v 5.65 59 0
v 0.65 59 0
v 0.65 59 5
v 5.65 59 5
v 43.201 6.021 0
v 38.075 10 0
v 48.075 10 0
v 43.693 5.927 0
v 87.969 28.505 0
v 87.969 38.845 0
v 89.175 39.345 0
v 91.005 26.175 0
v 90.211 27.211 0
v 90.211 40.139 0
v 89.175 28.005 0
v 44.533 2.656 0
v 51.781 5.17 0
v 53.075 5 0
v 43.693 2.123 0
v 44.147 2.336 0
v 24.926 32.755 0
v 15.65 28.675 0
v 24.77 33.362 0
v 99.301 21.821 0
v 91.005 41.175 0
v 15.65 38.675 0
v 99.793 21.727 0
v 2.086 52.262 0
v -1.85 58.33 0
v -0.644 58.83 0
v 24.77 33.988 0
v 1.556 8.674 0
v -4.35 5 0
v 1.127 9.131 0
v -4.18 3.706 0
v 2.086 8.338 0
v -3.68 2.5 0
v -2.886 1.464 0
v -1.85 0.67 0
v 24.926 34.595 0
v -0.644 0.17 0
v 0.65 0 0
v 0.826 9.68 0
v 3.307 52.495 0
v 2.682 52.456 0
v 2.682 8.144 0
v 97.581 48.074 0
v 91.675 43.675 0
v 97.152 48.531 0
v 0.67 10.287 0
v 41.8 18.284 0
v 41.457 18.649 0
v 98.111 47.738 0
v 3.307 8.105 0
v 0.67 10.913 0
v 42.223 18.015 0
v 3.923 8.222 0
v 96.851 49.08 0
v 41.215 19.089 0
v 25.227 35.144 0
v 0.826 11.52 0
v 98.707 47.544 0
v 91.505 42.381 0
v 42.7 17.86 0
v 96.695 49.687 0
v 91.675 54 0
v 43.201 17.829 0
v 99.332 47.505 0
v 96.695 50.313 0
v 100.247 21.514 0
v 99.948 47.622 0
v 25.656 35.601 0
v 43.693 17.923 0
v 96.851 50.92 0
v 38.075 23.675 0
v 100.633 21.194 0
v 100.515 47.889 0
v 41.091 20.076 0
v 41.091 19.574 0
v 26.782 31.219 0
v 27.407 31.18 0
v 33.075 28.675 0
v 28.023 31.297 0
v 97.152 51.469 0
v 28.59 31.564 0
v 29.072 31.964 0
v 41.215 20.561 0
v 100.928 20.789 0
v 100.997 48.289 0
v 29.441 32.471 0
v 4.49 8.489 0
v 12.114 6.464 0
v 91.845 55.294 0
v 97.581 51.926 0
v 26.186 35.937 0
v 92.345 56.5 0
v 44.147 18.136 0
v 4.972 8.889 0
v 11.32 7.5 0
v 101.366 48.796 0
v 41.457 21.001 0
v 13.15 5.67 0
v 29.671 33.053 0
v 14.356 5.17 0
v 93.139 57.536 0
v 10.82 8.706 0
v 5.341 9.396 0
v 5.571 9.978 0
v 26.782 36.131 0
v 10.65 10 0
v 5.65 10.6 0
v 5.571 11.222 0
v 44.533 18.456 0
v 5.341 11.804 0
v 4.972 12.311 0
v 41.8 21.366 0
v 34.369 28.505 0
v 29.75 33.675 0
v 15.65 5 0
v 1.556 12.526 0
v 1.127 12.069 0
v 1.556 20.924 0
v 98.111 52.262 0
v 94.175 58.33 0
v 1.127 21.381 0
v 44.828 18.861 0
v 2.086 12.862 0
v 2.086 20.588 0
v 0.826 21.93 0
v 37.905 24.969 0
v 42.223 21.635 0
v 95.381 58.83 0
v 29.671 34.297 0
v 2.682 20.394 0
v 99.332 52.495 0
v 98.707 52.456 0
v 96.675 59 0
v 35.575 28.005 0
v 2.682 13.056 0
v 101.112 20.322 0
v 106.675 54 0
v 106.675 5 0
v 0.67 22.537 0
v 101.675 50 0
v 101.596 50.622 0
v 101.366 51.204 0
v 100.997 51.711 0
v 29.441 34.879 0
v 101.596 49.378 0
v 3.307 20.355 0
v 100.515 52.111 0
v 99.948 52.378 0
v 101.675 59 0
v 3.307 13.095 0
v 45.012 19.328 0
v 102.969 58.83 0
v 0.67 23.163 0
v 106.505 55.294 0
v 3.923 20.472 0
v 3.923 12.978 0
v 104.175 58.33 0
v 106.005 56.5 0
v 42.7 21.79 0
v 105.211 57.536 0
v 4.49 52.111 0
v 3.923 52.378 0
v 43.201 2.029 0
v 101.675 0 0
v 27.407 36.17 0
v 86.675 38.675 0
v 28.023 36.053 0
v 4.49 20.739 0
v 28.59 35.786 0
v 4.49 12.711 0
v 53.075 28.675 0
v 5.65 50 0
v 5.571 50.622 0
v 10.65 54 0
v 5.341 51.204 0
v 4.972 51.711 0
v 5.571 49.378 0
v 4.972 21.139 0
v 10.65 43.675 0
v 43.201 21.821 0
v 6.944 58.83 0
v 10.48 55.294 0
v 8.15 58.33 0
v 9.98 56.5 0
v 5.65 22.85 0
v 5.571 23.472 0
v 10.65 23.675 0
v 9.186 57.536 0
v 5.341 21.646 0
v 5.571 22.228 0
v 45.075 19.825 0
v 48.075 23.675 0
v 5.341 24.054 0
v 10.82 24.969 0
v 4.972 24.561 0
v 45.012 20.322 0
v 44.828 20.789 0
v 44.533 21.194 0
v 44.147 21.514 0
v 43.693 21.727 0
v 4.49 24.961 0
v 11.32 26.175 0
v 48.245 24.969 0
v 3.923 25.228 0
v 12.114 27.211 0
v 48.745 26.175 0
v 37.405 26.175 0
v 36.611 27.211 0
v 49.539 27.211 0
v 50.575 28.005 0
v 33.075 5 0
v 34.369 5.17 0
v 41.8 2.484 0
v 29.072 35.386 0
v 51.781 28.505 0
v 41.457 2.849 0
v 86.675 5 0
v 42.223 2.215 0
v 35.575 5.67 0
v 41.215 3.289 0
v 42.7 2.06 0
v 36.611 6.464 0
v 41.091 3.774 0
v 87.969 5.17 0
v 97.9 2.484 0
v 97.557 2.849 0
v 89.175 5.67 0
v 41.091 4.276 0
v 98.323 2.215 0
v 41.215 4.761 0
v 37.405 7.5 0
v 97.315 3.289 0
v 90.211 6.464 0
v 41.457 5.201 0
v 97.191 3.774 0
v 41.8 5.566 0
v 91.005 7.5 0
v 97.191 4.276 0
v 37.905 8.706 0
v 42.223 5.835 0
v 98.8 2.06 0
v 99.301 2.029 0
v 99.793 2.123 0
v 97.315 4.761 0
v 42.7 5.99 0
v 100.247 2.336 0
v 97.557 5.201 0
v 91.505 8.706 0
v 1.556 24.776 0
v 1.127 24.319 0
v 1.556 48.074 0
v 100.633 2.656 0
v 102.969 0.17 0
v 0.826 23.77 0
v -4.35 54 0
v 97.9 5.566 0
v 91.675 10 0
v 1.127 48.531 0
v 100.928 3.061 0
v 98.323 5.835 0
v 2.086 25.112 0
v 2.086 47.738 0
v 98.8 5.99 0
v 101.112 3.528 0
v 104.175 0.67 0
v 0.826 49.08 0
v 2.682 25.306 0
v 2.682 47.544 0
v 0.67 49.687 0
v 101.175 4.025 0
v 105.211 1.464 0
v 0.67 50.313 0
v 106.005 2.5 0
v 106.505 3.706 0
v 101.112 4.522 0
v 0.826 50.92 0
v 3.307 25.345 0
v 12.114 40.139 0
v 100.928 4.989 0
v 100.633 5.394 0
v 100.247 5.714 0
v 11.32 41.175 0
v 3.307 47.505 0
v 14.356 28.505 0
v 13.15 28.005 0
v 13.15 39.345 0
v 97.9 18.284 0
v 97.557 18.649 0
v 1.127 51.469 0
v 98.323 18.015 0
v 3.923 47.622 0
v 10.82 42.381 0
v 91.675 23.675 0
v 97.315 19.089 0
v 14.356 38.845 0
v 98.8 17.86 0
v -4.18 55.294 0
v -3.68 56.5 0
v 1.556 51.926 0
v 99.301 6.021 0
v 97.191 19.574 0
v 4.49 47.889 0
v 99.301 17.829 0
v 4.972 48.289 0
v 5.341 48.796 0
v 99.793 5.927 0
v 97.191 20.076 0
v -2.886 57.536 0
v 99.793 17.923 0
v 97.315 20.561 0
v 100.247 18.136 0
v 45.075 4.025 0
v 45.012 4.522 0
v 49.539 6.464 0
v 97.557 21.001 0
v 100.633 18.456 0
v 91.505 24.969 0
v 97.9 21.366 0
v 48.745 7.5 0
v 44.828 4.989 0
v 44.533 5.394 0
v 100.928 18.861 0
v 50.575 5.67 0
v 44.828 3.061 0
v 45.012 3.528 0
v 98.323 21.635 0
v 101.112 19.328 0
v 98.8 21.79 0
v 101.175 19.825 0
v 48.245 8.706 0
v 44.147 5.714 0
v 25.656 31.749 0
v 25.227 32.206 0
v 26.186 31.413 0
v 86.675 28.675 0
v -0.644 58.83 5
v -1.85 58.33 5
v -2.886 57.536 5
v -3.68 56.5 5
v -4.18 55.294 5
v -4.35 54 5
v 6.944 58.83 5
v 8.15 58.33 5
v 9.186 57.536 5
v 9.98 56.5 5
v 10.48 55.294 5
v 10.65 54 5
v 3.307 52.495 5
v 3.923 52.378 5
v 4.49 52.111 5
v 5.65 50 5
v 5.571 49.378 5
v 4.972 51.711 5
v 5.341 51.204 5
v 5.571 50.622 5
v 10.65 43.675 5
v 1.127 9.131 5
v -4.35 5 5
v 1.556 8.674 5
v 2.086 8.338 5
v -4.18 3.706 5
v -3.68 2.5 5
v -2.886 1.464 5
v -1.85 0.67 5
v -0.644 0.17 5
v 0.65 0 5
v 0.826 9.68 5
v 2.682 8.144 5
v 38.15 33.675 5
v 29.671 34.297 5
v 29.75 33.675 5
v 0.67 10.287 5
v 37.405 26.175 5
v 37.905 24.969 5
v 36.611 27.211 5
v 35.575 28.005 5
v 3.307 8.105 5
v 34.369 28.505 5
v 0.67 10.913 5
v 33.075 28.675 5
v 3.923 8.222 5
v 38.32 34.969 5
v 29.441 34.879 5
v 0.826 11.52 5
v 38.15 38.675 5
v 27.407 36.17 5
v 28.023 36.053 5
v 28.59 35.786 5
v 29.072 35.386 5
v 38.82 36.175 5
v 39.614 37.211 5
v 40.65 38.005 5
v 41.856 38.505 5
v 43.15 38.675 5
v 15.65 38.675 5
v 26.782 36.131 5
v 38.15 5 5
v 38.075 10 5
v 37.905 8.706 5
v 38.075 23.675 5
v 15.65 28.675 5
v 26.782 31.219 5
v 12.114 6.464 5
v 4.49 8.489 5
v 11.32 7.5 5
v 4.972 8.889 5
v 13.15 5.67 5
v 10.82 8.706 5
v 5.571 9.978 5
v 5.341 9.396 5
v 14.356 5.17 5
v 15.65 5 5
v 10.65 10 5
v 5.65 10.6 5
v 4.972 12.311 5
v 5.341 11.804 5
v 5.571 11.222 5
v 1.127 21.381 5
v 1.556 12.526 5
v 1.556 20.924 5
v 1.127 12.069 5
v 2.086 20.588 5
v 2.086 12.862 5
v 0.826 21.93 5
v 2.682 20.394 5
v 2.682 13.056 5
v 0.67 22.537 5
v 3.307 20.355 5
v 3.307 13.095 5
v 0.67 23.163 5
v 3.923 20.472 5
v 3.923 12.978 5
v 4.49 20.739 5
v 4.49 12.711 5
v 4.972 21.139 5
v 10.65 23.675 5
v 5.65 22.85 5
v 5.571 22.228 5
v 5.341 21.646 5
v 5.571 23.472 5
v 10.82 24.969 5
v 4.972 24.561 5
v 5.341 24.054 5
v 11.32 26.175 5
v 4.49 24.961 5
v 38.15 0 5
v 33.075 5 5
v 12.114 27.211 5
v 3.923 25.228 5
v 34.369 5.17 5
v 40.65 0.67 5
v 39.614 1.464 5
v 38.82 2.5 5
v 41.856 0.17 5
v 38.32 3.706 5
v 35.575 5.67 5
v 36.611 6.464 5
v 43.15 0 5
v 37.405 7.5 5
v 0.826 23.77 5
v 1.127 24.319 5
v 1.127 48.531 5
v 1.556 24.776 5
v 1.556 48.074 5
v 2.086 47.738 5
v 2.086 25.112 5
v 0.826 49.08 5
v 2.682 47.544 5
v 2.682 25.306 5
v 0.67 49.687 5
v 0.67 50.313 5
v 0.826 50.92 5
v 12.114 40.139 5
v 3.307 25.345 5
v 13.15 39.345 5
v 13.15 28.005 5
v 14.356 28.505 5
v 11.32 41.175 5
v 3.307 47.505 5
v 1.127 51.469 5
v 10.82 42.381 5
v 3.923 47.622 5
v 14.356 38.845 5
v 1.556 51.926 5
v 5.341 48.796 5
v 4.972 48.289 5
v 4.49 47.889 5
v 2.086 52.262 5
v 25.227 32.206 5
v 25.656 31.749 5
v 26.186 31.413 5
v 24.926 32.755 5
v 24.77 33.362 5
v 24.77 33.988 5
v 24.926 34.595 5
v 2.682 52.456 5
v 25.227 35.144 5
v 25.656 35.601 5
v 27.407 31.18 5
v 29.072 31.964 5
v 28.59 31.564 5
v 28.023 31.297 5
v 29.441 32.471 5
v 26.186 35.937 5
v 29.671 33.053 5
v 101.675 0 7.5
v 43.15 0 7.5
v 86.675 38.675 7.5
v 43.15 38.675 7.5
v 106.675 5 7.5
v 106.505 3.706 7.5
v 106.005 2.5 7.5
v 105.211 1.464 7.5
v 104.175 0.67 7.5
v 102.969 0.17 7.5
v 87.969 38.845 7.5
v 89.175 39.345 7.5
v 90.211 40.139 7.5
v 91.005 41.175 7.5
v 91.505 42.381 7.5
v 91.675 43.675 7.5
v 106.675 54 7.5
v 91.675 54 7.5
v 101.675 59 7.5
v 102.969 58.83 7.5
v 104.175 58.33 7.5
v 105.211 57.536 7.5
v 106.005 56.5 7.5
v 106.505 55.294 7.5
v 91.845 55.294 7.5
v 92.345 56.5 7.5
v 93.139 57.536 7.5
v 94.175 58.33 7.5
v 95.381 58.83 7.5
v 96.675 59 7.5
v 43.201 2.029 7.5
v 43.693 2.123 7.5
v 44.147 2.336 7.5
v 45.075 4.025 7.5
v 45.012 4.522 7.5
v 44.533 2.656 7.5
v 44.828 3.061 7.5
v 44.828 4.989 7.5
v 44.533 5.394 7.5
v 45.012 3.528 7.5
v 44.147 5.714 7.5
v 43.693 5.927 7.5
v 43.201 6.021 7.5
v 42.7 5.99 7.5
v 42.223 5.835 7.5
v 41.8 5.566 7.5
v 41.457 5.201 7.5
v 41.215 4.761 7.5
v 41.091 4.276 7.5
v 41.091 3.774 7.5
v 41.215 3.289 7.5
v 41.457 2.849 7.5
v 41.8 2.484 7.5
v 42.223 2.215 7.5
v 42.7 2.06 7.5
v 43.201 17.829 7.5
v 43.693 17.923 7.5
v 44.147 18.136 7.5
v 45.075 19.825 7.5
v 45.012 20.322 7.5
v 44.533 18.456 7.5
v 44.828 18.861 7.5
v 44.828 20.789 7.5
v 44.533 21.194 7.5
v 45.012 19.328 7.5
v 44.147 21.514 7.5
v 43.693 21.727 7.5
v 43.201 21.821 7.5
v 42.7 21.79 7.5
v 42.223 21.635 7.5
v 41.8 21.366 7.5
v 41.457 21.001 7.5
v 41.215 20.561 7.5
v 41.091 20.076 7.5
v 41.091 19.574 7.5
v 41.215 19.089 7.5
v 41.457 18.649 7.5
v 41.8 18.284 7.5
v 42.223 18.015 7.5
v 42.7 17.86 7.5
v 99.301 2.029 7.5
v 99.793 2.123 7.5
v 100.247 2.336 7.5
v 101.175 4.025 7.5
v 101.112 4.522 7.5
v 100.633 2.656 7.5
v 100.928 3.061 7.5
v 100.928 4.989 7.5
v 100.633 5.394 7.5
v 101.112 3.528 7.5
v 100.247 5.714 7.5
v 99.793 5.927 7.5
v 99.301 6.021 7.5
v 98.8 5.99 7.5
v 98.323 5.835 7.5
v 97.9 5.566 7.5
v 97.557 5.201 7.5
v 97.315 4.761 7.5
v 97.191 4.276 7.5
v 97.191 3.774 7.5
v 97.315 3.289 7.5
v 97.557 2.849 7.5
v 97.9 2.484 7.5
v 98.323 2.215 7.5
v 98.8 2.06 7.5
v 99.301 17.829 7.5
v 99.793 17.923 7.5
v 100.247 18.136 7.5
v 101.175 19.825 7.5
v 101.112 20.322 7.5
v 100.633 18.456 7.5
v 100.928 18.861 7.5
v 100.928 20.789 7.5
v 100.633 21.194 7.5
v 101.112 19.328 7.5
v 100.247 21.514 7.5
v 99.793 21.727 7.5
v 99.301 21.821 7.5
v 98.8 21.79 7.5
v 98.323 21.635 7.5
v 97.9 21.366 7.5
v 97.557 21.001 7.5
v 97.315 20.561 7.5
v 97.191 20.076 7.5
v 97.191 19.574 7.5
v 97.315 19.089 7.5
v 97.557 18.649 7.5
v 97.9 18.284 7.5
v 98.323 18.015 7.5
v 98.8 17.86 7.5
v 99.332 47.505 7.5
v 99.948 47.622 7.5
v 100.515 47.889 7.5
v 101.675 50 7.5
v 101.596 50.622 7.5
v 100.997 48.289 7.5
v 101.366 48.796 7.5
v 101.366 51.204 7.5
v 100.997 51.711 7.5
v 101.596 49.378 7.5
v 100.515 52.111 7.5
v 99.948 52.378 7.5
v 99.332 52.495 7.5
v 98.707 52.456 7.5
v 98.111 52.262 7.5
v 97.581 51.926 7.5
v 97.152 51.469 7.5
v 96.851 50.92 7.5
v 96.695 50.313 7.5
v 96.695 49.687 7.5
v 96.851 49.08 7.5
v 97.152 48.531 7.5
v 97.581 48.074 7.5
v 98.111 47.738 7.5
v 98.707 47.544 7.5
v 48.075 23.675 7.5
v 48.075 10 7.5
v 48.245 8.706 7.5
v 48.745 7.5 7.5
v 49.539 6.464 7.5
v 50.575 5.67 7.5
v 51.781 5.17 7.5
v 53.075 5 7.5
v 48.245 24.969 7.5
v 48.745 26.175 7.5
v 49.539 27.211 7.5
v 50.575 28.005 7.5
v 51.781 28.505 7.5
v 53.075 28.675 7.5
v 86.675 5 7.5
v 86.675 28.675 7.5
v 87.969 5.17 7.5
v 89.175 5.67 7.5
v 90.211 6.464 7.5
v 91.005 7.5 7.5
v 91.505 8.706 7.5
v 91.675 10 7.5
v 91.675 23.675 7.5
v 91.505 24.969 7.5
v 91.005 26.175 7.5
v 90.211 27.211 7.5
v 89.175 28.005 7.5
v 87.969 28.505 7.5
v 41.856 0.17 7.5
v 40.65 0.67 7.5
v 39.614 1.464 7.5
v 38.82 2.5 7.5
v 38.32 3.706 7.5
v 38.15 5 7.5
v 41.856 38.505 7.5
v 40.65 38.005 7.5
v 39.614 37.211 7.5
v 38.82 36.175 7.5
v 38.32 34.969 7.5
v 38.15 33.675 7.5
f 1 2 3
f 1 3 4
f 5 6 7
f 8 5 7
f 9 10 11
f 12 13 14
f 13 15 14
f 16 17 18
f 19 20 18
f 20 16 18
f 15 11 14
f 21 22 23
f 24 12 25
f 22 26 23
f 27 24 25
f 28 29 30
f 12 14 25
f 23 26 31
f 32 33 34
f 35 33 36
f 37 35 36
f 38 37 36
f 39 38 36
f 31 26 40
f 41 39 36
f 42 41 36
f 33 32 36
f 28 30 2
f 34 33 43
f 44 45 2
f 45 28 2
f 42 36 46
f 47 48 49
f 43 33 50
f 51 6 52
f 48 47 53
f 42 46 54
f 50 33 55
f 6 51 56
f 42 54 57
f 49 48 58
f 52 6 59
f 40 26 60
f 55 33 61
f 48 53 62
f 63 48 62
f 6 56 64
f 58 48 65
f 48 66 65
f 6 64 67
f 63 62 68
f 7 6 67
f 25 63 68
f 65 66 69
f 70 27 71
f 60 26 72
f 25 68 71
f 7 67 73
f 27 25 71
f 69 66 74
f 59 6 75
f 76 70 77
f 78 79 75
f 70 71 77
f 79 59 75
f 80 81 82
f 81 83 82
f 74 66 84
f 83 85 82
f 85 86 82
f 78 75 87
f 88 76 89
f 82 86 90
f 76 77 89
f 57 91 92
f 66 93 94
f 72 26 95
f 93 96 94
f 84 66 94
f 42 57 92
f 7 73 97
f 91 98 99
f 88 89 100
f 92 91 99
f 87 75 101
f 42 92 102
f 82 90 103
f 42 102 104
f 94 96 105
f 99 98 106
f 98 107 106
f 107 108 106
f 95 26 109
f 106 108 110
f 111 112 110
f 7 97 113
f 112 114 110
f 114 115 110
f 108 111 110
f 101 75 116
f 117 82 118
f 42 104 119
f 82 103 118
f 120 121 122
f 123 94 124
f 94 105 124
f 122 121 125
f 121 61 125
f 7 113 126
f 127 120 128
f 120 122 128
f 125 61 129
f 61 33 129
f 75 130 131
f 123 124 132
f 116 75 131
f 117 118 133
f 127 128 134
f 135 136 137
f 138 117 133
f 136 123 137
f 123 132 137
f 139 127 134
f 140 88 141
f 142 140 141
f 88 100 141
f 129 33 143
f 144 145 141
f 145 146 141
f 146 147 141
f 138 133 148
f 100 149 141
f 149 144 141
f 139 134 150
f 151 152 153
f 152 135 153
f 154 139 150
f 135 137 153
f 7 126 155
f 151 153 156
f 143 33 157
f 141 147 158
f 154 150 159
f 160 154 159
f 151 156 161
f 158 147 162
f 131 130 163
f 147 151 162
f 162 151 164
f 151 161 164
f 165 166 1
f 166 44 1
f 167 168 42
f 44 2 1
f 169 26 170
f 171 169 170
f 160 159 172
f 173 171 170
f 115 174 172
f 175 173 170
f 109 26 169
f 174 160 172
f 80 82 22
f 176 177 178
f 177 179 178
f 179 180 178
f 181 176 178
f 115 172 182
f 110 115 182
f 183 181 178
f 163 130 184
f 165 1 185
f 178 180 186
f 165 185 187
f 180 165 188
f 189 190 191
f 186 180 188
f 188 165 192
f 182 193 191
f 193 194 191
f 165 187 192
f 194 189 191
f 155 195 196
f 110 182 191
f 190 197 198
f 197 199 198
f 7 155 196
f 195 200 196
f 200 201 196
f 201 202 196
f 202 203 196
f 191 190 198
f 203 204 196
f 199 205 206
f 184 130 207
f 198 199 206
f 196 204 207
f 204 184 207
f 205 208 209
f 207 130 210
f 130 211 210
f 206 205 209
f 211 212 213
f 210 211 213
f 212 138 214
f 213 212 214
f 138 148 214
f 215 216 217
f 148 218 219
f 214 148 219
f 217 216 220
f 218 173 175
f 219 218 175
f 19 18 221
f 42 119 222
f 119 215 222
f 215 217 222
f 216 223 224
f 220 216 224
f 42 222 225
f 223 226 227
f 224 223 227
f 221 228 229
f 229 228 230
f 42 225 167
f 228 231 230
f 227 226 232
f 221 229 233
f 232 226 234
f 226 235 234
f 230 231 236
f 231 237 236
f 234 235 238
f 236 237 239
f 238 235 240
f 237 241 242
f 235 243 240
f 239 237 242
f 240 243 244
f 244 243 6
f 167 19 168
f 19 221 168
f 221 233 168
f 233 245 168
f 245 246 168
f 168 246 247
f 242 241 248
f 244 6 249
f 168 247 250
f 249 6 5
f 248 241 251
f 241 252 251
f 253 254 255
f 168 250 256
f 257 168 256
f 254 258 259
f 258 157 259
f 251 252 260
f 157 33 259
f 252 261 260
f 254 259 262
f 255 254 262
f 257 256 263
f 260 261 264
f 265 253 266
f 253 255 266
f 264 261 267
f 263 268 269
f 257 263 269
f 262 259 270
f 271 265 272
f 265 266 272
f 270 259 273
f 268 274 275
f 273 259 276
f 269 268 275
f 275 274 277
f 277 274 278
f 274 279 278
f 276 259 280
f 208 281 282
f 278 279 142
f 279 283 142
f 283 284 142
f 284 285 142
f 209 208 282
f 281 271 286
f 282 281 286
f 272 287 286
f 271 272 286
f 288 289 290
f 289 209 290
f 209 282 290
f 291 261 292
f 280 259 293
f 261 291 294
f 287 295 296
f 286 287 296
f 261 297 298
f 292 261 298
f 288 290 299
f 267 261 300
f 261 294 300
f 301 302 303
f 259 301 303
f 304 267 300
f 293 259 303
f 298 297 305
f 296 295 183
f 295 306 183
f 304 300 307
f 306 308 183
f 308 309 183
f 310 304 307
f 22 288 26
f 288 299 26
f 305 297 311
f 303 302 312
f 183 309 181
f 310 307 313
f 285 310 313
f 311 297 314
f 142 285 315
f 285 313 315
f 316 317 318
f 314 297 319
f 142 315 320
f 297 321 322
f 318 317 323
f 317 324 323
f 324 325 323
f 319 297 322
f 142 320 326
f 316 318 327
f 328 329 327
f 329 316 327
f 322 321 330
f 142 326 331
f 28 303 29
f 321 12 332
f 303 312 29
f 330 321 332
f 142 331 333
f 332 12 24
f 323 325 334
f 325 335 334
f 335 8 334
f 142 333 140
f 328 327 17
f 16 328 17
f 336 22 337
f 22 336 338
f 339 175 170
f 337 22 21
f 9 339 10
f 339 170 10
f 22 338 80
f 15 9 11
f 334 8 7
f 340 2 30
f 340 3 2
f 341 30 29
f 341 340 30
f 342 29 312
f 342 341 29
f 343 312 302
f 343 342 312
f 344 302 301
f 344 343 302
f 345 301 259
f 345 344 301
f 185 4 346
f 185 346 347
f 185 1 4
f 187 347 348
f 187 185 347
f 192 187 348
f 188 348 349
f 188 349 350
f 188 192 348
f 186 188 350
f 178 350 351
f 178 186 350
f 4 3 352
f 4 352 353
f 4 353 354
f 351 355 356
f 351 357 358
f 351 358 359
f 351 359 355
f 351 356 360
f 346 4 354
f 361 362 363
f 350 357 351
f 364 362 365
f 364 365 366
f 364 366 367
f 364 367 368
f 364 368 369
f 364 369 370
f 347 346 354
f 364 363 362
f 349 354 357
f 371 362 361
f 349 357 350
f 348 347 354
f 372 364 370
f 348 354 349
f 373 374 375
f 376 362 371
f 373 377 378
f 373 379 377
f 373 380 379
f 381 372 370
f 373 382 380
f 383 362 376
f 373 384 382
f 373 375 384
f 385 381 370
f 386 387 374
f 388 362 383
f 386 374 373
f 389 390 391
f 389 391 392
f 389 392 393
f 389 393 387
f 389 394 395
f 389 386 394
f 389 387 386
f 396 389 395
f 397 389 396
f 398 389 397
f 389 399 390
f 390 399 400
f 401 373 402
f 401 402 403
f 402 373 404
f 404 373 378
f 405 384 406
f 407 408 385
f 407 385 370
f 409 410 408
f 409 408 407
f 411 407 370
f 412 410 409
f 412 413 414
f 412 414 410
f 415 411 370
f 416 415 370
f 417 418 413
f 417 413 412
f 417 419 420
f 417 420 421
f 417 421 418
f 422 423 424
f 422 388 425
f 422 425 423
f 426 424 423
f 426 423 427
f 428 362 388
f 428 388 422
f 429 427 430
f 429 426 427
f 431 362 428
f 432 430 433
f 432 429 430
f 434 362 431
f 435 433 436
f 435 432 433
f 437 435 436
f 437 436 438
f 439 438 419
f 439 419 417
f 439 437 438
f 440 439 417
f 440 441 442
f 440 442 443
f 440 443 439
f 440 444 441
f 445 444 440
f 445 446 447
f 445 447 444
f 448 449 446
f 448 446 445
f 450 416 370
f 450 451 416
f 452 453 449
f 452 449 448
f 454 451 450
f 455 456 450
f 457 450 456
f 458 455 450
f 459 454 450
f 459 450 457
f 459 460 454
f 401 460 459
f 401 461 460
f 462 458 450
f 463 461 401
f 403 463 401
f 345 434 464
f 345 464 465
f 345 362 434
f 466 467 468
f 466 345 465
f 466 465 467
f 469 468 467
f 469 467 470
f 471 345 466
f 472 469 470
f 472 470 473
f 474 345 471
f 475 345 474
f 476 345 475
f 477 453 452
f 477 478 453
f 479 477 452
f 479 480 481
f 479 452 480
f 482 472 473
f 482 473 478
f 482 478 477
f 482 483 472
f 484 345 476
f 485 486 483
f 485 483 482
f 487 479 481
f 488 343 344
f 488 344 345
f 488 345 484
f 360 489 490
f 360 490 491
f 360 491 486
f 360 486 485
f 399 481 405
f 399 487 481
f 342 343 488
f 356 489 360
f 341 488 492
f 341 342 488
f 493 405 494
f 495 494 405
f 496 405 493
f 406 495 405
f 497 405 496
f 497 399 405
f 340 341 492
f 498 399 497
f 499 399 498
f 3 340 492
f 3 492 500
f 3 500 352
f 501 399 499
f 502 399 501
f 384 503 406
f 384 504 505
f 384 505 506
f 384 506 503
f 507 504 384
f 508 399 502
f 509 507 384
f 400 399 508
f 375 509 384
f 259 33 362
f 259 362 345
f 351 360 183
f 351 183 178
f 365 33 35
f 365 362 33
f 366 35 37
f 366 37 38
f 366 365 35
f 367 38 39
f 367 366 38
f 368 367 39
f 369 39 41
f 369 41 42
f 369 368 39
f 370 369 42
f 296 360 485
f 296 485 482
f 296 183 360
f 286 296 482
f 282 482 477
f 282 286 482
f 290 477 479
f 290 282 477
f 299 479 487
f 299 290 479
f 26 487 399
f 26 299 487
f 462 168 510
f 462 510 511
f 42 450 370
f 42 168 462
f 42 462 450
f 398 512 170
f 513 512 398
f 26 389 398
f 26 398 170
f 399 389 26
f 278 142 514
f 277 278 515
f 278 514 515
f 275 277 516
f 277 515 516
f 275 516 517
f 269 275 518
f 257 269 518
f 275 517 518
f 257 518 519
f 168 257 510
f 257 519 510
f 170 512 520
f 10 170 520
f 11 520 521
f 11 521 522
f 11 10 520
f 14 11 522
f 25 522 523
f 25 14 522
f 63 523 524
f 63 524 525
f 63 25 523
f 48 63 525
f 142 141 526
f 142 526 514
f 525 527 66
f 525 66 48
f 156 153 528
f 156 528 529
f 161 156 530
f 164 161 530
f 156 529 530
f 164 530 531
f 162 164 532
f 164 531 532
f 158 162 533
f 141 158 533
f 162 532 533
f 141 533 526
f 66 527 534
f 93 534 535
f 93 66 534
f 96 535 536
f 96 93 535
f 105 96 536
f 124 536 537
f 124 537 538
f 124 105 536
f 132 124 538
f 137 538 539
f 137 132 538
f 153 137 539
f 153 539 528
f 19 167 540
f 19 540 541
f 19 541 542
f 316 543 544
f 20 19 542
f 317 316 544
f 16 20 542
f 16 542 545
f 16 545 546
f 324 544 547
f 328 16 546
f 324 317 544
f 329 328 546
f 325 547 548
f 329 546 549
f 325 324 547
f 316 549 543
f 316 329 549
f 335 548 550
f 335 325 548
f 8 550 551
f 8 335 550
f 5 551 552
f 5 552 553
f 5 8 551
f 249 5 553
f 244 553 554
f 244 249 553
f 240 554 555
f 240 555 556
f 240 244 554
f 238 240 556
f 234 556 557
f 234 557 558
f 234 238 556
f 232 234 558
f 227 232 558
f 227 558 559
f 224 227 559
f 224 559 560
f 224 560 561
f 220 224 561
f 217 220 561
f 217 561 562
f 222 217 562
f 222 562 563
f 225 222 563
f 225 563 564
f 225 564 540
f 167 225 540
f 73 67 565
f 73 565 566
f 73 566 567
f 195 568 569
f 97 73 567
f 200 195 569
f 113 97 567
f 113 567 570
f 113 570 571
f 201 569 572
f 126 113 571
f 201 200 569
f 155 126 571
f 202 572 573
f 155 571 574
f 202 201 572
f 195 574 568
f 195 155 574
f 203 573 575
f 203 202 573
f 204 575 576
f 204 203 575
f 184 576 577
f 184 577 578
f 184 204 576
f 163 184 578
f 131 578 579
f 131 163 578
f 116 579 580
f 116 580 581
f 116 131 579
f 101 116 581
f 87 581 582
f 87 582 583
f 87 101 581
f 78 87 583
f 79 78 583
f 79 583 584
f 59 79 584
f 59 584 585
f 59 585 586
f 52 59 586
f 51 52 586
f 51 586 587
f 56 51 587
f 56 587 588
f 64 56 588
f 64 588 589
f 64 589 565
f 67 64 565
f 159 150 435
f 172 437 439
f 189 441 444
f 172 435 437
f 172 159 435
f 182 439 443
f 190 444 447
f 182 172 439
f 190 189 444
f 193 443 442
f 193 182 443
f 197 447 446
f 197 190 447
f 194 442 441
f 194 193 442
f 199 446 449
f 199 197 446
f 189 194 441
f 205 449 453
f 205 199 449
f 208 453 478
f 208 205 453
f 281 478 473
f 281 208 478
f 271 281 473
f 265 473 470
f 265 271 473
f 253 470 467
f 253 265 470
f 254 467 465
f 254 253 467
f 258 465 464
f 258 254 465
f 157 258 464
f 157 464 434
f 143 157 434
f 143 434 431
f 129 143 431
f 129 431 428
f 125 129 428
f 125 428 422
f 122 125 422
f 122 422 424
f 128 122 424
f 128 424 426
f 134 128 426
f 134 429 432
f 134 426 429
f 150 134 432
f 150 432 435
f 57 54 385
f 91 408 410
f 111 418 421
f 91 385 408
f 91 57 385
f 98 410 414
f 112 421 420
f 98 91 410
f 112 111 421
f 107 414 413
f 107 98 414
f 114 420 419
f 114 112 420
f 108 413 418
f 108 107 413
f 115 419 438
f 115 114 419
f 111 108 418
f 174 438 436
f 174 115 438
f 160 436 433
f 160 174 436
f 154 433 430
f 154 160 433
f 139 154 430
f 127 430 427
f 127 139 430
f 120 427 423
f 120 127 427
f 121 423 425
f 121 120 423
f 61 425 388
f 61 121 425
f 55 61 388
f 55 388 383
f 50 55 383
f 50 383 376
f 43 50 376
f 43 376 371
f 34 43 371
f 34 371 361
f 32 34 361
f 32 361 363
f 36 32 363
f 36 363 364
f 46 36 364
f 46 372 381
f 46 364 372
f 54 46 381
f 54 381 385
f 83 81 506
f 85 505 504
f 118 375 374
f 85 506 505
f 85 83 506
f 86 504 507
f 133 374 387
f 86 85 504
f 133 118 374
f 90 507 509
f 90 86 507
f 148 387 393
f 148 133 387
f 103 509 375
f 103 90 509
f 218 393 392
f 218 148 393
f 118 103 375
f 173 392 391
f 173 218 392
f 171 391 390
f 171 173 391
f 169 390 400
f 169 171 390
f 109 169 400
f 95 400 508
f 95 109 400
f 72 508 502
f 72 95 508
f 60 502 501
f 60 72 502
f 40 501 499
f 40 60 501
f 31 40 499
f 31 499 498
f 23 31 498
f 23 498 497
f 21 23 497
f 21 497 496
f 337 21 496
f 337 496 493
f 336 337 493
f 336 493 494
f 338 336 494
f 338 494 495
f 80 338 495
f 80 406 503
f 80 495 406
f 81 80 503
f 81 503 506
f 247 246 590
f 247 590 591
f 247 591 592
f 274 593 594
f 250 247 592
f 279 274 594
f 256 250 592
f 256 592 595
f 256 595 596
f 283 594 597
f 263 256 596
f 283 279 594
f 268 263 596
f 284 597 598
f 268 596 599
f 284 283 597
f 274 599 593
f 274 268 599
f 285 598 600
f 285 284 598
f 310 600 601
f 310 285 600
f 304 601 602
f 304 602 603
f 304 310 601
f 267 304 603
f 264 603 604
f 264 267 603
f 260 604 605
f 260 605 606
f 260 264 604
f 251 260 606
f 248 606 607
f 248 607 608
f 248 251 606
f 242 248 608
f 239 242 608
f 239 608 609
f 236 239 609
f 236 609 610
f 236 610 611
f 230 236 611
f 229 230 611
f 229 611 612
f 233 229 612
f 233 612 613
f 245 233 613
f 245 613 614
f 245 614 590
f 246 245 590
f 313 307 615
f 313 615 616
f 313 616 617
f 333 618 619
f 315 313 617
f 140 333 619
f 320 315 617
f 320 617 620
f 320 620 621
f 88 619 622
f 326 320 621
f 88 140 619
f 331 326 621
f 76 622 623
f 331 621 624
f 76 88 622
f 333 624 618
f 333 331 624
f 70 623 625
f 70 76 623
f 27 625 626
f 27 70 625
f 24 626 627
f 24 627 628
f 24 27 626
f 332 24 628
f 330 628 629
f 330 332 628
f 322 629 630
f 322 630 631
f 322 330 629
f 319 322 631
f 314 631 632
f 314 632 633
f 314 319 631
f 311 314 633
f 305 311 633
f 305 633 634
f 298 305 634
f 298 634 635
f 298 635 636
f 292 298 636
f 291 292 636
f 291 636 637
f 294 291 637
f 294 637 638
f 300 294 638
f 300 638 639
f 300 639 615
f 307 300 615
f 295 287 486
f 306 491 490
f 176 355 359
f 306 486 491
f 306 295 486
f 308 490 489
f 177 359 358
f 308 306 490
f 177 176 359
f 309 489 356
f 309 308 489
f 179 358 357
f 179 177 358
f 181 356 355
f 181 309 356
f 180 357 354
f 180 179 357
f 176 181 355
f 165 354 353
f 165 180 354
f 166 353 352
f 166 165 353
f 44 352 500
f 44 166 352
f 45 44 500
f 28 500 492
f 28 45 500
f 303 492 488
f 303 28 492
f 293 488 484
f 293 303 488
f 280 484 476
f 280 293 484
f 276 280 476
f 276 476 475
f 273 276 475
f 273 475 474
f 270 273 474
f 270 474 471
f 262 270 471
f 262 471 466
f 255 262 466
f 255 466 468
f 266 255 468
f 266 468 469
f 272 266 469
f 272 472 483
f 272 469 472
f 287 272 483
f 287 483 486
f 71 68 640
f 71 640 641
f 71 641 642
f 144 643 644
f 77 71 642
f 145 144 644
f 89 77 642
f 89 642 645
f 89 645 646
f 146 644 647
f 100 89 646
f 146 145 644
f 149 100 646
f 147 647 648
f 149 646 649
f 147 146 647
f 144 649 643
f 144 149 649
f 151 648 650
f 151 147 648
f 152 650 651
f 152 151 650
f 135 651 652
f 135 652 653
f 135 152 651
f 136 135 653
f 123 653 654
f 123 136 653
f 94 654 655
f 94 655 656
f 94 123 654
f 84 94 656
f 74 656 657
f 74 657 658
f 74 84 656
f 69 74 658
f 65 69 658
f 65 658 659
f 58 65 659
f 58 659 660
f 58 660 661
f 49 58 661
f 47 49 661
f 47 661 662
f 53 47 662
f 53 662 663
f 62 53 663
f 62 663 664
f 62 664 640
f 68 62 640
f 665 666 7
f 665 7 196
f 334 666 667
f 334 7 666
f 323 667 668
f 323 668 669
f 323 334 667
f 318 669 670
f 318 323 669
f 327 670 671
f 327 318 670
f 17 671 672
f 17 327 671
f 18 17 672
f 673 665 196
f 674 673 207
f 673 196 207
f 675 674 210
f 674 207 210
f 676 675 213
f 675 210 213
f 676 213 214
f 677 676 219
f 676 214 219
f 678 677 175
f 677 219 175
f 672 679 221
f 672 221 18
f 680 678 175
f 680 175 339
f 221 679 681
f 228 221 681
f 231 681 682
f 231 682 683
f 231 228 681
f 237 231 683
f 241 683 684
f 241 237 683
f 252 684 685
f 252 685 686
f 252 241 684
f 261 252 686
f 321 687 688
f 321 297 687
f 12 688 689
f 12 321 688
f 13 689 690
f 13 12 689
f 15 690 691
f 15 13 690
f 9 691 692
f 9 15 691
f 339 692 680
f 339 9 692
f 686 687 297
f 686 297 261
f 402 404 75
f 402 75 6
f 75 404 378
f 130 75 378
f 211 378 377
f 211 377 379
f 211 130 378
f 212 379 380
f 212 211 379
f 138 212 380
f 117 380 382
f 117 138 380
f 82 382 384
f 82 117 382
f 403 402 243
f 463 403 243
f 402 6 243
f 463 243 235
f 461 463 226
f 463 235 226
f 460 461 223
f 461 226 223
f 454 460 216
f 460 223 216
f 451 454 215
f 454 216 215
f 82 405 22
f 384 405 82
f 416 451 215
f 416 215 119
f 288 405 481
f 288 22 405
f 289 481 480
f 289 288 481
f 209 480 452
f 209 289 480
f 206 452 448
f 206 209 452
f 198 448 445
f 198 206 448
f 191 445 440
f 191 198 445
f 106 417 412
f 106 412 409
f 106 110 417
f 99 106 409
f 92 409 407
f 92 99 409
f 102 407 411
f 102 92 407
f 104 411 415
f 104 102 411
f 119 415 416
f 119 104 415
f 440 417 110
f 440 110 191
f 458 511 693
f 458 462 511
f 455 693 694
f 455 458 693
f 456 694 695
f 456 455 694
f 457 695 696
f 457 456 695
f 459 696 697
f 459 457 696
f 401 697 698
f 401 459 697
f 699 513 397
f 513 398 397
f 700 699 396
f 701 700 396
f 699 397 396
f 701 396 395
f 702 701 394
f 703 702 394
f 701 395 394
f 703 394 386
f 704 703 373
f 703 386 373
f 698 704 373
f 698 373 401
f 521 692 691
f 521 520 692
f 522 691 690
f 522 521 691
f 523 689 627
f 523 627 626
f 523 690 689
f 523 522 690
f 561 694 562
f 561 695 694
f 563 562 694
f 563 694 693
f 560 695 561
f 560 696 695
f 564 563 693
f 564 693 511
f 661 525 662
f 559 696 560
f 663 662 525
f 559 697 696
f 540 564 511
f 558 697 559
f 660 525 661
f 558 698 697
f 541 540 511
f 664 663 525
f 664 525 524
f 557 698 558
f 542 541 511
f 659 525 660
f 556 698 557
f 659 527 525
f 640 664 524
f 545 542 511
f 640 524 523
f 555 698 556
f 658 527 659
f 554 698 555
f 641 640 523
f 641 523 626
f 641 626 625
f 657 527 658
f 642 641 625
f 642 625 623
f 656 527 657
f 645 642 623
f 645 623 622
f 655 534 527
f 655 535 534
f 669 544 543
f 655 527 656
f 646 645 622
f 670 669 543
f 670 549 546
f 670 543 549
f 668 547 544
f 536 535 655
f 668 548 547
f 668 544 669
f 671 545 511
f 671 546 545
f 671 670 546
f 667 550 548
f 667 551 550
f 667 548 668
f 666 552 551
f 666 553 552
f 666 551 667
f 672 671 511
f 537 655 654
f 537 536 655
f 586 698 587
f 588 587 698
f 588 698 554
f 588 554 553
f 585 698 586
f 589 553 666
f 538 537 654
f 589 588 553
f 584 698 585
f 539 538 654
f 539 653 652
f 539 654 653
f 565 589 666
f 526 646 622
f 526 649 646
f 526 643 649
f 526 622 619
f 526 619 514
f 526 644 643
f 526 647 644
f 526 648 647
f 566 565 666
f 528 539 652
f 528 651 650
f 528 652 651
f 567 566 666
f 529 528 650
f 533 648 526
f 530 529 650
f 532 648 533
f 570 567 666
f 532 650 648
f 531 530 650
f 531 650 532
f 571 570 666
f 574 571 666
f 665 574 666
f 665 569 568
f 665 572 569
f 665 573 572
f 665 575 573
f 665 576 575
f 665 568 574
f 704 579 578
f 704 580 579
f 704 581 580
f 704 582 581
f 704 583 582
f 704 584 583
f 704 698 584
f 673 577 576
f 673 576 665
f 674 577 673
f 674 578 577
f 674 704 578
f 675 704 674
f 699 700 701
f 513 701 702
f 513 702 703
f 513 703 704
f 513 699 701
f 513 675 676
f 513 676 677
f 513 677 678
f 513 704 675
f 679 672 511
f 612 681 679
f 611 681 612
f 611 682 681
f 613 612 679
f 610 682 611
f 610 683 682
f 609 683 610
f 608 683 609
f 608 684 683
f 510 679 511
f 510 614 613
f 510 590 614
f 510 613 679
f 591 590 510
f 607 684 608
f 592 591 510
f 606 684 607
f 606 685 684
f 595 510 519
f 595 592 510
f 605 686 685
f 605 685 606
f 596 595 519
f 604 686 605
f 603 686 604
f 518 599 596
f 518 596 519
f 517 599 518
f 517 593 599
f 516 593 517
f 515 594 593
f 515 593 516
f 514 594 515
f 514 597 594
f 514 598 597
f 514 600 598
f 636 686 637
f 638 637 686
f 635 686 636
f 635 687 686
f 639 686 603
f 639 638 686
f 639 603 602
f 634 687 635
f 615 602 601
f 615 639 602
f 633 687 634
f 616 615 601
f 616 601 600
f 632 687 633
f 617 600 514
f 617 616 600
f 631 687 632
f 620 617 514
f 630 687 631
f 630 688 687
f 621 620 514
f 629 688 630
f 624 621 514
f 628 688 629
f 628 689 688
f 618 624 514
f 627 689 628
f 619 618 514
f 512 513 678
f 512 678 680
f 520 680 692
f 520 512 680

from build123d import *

# Parameters (mm, degrees)
SKETCH_W        = 111.025
SKETCH_H        = 59
SKETCH_R        = 2.5
SKETCH_R_2      = 2
PAD_DEPTH       = 7.5
SKETCH001_W     = 42.5
SKETCH001_H     = 59
POCKET_DEPTH    = 2.5
SKETCH002_W     = 81.025
SKETCH002_H     = 20.325
SKETCH002_W_2   = 43.6
SKETCH002_H_2   = 23.675
SKETCH002_W_3   = 27.425
POCKET001_DEPTH = 7.501
FILLET_R        = 5


with BuildPart() as part:
    # Sketch → Pad (new body)
    with BuildSketch(Plane.XY):
        with Locations((51.1625, 29.5)):
            Rectangle(SKETCH_W, SKETCH_H)
        with Locations((3.15, 22.85)):
            Circle(SKETCH_R, mode=Mode.SUBTRACT)
        with Locations((3.15, 10.6)):
            Circle(SKETCH_R, mode=Mode.SUBTRACT)
        with Locations((27.25, 33.675)):
            Circle(SKETCH_R, mode=Mode.SUBTRACT)
        with Locations((43.075, 19.825)):
            Circle(SKETCH_R_2, mode=Mode.SUBTRACT)
        with Locations((99.175, 19.825)):
            Circle(SKETCH_R_2, mode=Mode.SUBTRACT)
        with Locations((43.075, 4.025)):
            Circle(SKETCH_R_2, mode=Mode.SUBTRACT)
        with Locations((99.175, 4.025)):
            Circle(SKETCH_R_2, mode=Mode.SUBTRACT)
        with Locations((3.15, 50)):
            Circle(SKETCH_R, mode=Mode.SUBTRACT)
        with Locations((99.175, 50)):
            Circle(SKETCH_R, mode=Mode.SUBTRACT)
    extrude(amount=PAD_DEPTH)

    # Sketch001 → Pocket (cut)
    with BuildSketch(Plane.XY.offset(7.5)):
        with Locations((16.9, 29.5)):
            Rectangle(SKETCH001_W, SKETCH001_H)
    extrude(amount=-POCKET_DEPTH, mode=Mode.SUBTRACT)

    # Sketch002 → Pocket001 (cut, through all)
    with BuildSketch(Plane.XY.offset(7.5)):
        with Locations((51.1625, 48.8375)):
            Rectangle(SKETCH002_W, SKETCH002_H)
        with Locations((69.875, 16.8375)):
            Rectangle(SKETCH002_W_2, SKETCH002_H_2)
        with Locations((24.3625, 16.8375)):
            Rectangle(SKETCH002_W_3, SKETCH002_H_2)
    extrude(amount=-POCKET001_DEPTH, mode=Mode.SUBTRACT)

    # Fillet
    fillet_edges = [part.edges().sort_by_distance(p)[0] for p in [
        (106.675, 59, 3.75),
        (91.675, 59, 3.75),
        (91.675, 38.675, 3.75),
        (91.675, 28.675, 3.75),
        (91.675, 5, 3.75),
        (106.675, 0, 3.75),
        (48.075, 5, 3.75),
        (48.075, 28.675, 3.75),
        (38.075, 28.675, 2.5),
        (38.075, 5, 2.5),
        (38.15, 0, 6.25),
        (38.15, 38.675, 6.25),
        (10.65, 5, 2.5),
        (10.65, 28.675, 2.5),
        (10.65, 38.675, 2.5),
        (10.65, 59, 2.5),
        (-4.35, 59, 2.5),
        (-4.35, 0, 2.5),
    ]]
    fillet(fillet_edges, radius=FILLET_R)


solid = part.part
